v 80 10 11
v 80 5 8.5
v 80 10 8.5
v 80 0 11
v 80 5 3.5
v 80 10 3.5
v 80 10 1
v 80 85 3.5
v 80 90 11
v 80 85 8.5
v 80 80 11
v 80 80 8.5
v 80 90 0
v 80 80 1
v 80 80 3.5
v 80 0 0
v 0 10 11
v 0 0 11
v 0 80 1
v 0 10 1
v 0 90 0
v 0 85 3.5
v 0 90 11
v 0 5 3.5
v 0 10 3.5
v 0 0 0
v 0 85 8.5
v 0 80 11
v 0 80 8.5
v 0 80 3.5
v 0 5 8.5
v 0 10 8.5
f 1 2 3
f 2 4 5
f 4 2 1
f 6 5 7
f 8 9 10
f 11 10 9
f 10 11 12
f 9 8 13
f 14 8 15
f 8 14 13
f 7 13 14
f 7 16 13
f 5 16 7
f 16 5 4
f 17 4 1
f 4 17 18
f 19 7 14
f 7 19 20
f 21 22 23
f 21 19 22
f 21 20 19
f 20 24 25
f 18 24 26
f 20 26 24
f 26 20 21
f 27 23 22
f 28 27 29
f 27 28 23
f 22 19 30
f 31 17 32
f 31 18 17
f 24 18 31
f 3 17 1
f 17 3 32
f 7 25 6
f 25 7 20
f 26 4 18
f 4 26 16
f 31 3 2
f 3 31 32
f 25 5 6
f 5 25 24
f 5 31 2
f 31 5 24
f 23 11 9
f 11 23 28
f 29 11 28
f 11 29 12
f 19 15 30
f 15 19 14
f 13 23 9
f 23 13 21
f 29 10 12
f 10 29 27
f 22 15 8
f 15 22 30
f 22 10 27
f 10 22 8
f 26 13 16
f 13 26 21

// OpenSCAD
// file: PiHolderRail.scad
// Length of the rail
length = 80; //[50 : 150]

// Height/Width of the rail
height = 10; //[4 : 20]

// Height/Depth of the gap in the rail
gap = 4; //[2: 20]

PiHolderRail(length, height, gap);

module PiHolderRail(length, height, gap) {
    difference() {
        color("yellow") cube([length, height, height]);
        translate([0, height - gap, (height - gap)/2]) {
            cube([length, height, gap]);
        } 
    }
    
}
// main file
use <./PiHolderRail.scad>


PiHolderSlot(80, 80);

module PiHolderSlot(width, length) {
    cube([length, width + 10, 1]);
    translate([0, 0, 1]) {
        PiHolderRail(length, 10, 5);
        translate([0, width + 10, 0]){
            mirror([0,1,0]) PiHolderRail(length, 10, 5);
        }
    }
    
}
